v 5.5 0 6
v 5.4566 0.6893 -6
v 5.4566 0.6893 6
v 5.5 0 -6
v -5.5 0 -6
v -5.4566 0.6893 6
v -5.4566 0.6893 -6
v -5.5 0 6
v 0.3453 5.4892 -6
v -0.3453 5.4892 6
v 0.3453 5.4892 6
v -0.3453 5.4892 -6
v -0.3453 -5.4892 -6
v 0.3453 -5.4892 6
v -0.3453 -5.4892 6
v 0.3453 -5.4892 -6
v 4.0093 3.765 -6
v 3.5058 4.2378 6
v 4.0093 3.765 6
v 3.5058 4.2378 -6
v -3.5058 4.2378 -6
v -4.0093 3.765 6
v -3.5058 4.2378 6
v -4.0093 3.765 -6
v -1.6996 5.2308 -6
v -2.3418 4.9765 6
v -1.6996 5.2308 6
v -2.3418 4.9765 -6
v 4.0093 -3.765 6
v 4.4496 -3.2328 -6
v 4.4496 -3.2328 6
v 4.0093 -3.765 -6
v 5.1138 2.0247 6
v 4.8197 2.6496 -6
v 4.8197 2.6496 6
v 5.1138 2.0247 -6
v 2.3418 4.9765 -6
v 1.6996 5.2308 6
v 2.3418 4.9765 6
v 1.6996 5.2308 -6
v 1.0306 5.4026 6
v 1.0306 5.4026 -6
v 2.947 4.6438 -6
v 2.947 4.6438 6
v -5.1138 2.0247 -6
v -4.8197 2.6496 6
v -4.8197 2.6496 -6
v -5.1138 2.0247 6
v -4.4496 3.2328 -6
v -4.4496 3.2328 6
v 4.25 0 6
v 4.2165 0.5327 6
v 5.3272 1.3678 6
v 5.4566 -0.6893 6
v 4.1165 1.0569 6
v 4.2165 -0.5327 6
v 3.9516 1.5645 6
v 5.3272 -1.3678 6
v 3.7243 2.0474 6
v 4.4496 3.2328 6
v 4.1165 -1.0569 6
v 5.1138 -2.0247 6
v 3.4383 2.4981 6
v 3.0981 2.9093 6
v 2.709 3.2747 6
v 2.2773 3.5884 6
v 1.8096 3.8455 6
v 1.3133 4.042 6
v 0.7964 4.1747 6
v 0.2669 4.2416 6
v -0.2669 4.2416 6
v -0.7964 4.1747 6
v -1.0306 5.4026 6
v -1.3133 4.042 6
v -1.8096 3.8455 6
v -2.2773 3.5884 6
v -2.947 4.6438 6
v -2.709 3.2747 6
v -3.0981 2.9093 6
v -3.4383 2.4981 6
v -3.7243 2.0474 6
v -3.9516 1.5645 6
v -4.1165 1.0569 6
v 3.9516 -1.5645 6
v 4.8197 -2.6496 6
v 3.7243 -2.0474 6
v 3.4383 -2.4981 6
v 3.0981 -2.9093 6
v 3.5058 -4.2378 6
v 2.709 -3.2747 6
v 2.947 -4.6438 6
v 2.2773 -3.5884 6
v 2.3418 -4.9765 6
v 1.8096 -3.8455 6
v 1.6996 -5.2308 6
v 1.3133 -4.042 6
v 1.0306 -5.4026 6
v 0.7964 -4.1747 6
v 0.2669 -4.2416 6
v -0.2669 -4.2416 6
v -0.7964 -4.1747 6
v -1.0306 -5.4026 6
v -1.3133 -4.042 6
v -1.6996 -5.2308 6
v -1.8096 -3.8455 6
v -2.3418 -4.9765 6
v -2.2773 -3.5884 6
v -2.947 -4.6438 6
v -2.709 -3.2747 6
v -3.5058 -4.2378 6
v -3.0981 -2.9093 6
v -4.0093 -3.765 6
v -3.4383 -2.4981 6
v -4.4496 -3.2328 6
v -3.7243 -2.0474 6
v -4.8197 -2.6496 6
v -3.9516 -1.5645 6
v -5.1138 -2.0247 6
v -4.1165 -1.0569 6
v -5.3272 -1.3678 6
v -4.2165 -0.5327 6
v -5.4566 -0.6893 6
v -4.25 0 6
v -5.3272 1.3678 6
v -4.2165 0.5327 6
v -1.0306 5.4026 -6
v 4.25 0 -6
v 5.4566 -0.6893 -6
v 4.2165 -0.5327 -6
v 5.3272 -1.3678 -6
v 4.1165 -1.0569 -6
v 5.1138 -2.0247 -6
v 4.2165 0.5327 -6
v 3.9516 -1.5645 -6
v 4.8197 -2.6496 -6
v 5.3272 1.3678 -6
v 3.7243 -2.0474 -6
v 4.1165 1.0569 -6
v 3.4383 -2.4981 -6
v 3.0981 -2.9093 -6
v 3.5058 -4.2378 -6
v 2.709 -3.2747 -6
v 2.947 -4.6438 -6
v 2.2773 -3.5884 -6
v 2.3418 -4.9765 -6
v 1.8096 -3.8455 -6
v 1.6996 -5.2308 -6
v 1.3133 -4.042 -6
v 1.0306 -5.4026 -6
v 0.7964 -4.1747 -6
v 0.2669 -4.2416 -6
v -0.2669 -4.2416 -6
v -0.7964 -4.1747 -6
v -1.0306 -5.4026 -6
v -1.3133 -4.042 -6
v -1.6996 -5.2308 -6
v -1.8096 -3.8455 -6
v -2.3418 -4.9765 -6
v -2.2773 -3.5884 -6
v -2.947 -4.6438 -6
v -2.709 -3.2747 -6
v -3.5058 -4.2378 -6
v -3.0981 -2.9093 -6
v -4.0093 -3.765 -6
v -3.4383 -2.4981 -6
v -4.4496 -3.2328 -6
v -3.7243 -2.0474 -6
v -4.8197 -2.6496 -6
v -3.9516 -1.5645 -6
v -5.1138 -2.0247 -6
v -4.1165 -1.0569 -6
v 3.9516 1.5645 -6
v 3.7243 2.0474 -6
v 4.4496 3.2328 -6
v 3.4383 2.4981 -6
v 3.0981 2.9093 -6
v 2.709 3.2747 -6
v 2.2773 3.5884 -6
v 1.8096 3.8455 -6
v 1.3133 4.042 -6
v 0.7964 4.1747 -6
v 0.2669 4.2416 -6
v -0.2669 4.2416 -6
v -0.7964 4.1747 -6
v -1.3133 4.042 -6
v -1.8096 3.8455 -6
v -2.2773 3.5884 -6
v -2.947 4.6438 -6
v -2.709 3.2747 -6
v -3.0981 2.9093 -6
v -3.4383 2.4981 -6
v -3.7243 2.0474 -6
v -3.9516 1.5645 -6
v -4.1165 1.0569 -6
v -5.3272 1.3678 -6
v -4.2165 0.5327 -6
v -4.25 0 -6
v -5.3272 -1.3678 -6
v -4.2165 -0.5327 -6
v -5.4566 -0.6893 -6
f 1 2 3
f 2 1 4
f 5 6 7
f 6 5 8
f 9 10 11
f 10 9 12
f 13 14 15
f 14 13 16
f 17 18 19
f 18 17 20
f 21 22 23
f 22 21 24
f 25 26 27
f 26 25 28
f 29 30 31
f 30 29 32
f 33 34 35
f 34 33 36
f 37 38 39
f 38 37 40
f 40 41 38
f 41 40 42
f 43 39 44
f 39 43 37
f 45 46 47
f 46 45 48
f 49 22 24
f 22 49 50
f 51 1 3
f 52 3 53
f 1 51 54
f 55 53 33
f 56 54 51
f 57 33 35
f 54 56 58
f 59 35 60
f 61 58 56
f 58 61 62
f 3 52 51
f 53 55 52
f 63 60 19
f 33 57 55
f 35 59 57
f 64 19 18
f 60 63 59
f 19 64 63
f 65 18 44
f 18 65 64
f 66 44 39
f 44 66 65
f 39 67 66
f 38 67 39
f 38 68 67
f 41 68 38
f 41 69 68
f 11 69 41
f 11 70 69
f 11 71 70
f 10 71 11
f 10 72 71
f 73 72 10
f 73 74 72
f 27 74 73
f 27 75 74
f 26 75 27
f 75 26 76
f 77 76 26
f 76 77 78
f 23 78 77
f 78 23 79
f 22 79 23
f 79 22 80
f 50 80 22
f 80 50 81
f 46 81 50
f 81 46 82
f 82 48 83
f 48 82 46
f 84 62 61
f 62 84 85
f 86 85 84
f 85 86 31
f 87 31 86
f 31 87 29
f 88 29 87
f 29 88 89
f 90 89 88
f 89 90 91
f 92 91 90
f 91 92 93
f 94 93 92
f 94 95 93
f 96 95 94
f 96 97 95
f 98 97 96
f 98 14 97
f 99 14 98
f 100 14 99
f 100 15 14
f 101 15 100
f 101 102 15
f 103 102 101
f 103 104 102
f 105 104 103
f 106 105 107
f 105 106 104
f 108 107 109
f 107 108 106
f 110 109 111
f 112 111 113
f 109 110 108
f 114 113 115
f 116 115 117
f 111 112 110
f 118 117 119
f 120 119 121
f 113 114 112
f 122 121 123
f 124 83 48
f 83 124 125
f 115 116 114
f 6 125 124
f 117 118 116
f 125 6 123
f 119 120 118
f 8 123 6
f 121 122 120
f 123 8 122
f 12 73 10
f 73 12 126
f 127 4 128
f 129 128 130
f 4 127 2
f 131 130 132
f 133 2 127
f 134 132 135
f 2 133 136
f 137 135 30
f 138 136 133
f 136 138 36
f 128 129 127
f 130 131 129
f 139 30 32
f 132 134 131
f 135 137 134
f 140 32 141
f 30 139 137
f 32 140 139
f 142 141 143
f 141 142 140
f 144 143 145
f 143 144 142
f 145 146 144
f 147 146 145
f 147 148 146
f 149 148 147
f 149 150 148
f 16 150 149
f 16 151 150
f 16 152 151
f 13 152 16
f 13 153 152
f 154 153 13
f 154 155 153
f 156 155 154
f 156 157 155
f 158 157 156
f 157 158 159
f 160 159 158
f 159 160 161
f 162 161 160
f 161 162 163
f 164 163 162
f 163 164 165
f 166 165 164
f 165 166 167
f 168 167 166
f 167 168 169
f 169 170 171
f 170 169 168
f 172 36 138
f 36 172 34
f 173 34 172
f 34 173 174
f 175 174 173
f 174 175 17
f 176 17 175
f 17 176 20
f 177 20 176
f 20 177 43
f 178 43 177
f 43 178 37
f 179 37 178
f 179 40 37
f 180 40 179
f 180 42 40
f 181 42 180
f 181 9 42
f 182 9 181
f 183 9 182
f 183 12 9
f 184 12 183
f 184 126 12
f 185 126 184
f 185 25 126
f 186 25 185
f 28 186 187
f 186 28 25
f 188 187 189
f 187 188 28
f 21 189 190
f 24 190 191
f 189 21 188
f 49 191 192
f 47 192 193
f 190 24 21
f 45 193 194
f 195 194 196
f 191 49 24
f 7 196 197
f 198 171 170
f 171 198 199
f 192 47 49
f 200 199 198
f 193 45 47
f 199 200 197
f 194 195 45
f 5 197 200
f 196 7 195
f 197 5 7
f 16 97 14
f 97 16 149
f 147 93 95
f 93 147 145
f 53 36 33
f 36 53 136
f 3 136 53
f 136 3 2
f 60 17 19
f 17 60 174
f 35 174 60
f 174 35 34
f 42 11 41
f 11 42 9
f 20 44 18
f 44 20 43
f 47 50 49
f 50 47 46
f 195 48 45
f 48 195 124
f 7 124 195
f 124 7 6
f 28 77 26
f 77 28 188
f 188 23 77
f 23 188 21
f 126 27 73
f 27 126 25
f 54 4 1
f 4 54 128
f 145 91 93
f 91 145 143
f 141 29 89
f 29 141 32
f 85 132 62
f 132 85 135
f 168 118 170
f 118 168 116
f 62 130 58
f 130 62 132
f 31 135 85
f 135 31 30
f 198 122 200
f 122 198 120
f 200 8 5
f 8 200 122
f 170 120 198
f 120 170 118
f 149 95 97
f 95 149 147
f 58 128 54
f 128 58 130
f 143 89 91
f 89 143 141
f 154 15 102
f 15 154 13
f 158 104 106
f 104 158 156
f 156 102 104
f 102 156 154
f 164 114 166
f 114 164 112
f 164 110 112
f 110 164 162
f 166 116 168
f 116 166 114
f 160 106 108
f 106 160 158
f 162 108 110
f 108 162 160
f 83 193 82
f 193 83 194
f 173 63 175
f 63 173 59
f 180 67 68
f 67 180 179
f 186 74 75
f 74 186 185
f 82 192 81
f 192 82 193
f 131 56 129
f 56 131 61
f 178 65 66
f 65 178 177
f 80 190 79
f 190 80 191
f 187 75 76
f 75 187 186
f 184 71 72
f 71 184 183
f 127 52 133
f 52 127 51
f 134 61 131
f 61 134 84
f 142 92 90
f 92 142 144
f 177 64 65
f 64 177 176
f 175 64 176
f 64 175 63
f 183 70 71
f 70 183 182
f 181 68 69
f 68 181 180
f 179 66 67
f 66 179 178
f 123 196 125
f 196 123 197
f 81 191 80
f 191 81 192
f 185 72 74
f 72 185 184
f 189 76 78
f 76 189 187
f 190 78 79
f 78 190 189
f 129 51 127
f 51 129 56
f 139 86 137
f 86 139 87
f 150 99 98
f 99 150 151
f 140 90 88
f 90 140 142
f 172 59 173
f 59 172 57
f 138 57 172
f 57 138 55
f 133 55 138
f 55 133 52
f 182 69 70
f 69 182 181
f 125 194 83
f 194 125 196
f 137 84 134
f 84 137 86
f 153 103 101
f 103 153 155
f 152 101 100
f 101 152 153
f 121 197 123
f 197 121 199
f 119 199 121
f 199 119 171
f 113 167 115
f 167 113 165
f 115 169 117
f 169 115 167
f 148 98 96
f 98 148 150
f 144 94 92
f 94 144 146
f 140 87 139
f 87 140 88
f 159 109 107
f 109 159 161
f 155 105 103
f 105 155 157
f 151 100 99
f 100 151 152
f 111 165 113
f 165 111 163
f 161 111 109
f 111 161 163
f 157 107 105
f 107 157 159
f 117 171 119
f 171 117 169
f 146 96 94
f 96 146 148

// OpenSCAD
$fn = 50;


difference() {
	union() {
		translate(v = [0, 0, -6.0000000000]) {
			cylinder(h = 12, r = 5.5000000000);
		}
	}
	union() {
		translate(v = [0, 0, -100.0000000000]) {
			cylinder(h = 200, r = 4.2500000000);
		}
	}
}
